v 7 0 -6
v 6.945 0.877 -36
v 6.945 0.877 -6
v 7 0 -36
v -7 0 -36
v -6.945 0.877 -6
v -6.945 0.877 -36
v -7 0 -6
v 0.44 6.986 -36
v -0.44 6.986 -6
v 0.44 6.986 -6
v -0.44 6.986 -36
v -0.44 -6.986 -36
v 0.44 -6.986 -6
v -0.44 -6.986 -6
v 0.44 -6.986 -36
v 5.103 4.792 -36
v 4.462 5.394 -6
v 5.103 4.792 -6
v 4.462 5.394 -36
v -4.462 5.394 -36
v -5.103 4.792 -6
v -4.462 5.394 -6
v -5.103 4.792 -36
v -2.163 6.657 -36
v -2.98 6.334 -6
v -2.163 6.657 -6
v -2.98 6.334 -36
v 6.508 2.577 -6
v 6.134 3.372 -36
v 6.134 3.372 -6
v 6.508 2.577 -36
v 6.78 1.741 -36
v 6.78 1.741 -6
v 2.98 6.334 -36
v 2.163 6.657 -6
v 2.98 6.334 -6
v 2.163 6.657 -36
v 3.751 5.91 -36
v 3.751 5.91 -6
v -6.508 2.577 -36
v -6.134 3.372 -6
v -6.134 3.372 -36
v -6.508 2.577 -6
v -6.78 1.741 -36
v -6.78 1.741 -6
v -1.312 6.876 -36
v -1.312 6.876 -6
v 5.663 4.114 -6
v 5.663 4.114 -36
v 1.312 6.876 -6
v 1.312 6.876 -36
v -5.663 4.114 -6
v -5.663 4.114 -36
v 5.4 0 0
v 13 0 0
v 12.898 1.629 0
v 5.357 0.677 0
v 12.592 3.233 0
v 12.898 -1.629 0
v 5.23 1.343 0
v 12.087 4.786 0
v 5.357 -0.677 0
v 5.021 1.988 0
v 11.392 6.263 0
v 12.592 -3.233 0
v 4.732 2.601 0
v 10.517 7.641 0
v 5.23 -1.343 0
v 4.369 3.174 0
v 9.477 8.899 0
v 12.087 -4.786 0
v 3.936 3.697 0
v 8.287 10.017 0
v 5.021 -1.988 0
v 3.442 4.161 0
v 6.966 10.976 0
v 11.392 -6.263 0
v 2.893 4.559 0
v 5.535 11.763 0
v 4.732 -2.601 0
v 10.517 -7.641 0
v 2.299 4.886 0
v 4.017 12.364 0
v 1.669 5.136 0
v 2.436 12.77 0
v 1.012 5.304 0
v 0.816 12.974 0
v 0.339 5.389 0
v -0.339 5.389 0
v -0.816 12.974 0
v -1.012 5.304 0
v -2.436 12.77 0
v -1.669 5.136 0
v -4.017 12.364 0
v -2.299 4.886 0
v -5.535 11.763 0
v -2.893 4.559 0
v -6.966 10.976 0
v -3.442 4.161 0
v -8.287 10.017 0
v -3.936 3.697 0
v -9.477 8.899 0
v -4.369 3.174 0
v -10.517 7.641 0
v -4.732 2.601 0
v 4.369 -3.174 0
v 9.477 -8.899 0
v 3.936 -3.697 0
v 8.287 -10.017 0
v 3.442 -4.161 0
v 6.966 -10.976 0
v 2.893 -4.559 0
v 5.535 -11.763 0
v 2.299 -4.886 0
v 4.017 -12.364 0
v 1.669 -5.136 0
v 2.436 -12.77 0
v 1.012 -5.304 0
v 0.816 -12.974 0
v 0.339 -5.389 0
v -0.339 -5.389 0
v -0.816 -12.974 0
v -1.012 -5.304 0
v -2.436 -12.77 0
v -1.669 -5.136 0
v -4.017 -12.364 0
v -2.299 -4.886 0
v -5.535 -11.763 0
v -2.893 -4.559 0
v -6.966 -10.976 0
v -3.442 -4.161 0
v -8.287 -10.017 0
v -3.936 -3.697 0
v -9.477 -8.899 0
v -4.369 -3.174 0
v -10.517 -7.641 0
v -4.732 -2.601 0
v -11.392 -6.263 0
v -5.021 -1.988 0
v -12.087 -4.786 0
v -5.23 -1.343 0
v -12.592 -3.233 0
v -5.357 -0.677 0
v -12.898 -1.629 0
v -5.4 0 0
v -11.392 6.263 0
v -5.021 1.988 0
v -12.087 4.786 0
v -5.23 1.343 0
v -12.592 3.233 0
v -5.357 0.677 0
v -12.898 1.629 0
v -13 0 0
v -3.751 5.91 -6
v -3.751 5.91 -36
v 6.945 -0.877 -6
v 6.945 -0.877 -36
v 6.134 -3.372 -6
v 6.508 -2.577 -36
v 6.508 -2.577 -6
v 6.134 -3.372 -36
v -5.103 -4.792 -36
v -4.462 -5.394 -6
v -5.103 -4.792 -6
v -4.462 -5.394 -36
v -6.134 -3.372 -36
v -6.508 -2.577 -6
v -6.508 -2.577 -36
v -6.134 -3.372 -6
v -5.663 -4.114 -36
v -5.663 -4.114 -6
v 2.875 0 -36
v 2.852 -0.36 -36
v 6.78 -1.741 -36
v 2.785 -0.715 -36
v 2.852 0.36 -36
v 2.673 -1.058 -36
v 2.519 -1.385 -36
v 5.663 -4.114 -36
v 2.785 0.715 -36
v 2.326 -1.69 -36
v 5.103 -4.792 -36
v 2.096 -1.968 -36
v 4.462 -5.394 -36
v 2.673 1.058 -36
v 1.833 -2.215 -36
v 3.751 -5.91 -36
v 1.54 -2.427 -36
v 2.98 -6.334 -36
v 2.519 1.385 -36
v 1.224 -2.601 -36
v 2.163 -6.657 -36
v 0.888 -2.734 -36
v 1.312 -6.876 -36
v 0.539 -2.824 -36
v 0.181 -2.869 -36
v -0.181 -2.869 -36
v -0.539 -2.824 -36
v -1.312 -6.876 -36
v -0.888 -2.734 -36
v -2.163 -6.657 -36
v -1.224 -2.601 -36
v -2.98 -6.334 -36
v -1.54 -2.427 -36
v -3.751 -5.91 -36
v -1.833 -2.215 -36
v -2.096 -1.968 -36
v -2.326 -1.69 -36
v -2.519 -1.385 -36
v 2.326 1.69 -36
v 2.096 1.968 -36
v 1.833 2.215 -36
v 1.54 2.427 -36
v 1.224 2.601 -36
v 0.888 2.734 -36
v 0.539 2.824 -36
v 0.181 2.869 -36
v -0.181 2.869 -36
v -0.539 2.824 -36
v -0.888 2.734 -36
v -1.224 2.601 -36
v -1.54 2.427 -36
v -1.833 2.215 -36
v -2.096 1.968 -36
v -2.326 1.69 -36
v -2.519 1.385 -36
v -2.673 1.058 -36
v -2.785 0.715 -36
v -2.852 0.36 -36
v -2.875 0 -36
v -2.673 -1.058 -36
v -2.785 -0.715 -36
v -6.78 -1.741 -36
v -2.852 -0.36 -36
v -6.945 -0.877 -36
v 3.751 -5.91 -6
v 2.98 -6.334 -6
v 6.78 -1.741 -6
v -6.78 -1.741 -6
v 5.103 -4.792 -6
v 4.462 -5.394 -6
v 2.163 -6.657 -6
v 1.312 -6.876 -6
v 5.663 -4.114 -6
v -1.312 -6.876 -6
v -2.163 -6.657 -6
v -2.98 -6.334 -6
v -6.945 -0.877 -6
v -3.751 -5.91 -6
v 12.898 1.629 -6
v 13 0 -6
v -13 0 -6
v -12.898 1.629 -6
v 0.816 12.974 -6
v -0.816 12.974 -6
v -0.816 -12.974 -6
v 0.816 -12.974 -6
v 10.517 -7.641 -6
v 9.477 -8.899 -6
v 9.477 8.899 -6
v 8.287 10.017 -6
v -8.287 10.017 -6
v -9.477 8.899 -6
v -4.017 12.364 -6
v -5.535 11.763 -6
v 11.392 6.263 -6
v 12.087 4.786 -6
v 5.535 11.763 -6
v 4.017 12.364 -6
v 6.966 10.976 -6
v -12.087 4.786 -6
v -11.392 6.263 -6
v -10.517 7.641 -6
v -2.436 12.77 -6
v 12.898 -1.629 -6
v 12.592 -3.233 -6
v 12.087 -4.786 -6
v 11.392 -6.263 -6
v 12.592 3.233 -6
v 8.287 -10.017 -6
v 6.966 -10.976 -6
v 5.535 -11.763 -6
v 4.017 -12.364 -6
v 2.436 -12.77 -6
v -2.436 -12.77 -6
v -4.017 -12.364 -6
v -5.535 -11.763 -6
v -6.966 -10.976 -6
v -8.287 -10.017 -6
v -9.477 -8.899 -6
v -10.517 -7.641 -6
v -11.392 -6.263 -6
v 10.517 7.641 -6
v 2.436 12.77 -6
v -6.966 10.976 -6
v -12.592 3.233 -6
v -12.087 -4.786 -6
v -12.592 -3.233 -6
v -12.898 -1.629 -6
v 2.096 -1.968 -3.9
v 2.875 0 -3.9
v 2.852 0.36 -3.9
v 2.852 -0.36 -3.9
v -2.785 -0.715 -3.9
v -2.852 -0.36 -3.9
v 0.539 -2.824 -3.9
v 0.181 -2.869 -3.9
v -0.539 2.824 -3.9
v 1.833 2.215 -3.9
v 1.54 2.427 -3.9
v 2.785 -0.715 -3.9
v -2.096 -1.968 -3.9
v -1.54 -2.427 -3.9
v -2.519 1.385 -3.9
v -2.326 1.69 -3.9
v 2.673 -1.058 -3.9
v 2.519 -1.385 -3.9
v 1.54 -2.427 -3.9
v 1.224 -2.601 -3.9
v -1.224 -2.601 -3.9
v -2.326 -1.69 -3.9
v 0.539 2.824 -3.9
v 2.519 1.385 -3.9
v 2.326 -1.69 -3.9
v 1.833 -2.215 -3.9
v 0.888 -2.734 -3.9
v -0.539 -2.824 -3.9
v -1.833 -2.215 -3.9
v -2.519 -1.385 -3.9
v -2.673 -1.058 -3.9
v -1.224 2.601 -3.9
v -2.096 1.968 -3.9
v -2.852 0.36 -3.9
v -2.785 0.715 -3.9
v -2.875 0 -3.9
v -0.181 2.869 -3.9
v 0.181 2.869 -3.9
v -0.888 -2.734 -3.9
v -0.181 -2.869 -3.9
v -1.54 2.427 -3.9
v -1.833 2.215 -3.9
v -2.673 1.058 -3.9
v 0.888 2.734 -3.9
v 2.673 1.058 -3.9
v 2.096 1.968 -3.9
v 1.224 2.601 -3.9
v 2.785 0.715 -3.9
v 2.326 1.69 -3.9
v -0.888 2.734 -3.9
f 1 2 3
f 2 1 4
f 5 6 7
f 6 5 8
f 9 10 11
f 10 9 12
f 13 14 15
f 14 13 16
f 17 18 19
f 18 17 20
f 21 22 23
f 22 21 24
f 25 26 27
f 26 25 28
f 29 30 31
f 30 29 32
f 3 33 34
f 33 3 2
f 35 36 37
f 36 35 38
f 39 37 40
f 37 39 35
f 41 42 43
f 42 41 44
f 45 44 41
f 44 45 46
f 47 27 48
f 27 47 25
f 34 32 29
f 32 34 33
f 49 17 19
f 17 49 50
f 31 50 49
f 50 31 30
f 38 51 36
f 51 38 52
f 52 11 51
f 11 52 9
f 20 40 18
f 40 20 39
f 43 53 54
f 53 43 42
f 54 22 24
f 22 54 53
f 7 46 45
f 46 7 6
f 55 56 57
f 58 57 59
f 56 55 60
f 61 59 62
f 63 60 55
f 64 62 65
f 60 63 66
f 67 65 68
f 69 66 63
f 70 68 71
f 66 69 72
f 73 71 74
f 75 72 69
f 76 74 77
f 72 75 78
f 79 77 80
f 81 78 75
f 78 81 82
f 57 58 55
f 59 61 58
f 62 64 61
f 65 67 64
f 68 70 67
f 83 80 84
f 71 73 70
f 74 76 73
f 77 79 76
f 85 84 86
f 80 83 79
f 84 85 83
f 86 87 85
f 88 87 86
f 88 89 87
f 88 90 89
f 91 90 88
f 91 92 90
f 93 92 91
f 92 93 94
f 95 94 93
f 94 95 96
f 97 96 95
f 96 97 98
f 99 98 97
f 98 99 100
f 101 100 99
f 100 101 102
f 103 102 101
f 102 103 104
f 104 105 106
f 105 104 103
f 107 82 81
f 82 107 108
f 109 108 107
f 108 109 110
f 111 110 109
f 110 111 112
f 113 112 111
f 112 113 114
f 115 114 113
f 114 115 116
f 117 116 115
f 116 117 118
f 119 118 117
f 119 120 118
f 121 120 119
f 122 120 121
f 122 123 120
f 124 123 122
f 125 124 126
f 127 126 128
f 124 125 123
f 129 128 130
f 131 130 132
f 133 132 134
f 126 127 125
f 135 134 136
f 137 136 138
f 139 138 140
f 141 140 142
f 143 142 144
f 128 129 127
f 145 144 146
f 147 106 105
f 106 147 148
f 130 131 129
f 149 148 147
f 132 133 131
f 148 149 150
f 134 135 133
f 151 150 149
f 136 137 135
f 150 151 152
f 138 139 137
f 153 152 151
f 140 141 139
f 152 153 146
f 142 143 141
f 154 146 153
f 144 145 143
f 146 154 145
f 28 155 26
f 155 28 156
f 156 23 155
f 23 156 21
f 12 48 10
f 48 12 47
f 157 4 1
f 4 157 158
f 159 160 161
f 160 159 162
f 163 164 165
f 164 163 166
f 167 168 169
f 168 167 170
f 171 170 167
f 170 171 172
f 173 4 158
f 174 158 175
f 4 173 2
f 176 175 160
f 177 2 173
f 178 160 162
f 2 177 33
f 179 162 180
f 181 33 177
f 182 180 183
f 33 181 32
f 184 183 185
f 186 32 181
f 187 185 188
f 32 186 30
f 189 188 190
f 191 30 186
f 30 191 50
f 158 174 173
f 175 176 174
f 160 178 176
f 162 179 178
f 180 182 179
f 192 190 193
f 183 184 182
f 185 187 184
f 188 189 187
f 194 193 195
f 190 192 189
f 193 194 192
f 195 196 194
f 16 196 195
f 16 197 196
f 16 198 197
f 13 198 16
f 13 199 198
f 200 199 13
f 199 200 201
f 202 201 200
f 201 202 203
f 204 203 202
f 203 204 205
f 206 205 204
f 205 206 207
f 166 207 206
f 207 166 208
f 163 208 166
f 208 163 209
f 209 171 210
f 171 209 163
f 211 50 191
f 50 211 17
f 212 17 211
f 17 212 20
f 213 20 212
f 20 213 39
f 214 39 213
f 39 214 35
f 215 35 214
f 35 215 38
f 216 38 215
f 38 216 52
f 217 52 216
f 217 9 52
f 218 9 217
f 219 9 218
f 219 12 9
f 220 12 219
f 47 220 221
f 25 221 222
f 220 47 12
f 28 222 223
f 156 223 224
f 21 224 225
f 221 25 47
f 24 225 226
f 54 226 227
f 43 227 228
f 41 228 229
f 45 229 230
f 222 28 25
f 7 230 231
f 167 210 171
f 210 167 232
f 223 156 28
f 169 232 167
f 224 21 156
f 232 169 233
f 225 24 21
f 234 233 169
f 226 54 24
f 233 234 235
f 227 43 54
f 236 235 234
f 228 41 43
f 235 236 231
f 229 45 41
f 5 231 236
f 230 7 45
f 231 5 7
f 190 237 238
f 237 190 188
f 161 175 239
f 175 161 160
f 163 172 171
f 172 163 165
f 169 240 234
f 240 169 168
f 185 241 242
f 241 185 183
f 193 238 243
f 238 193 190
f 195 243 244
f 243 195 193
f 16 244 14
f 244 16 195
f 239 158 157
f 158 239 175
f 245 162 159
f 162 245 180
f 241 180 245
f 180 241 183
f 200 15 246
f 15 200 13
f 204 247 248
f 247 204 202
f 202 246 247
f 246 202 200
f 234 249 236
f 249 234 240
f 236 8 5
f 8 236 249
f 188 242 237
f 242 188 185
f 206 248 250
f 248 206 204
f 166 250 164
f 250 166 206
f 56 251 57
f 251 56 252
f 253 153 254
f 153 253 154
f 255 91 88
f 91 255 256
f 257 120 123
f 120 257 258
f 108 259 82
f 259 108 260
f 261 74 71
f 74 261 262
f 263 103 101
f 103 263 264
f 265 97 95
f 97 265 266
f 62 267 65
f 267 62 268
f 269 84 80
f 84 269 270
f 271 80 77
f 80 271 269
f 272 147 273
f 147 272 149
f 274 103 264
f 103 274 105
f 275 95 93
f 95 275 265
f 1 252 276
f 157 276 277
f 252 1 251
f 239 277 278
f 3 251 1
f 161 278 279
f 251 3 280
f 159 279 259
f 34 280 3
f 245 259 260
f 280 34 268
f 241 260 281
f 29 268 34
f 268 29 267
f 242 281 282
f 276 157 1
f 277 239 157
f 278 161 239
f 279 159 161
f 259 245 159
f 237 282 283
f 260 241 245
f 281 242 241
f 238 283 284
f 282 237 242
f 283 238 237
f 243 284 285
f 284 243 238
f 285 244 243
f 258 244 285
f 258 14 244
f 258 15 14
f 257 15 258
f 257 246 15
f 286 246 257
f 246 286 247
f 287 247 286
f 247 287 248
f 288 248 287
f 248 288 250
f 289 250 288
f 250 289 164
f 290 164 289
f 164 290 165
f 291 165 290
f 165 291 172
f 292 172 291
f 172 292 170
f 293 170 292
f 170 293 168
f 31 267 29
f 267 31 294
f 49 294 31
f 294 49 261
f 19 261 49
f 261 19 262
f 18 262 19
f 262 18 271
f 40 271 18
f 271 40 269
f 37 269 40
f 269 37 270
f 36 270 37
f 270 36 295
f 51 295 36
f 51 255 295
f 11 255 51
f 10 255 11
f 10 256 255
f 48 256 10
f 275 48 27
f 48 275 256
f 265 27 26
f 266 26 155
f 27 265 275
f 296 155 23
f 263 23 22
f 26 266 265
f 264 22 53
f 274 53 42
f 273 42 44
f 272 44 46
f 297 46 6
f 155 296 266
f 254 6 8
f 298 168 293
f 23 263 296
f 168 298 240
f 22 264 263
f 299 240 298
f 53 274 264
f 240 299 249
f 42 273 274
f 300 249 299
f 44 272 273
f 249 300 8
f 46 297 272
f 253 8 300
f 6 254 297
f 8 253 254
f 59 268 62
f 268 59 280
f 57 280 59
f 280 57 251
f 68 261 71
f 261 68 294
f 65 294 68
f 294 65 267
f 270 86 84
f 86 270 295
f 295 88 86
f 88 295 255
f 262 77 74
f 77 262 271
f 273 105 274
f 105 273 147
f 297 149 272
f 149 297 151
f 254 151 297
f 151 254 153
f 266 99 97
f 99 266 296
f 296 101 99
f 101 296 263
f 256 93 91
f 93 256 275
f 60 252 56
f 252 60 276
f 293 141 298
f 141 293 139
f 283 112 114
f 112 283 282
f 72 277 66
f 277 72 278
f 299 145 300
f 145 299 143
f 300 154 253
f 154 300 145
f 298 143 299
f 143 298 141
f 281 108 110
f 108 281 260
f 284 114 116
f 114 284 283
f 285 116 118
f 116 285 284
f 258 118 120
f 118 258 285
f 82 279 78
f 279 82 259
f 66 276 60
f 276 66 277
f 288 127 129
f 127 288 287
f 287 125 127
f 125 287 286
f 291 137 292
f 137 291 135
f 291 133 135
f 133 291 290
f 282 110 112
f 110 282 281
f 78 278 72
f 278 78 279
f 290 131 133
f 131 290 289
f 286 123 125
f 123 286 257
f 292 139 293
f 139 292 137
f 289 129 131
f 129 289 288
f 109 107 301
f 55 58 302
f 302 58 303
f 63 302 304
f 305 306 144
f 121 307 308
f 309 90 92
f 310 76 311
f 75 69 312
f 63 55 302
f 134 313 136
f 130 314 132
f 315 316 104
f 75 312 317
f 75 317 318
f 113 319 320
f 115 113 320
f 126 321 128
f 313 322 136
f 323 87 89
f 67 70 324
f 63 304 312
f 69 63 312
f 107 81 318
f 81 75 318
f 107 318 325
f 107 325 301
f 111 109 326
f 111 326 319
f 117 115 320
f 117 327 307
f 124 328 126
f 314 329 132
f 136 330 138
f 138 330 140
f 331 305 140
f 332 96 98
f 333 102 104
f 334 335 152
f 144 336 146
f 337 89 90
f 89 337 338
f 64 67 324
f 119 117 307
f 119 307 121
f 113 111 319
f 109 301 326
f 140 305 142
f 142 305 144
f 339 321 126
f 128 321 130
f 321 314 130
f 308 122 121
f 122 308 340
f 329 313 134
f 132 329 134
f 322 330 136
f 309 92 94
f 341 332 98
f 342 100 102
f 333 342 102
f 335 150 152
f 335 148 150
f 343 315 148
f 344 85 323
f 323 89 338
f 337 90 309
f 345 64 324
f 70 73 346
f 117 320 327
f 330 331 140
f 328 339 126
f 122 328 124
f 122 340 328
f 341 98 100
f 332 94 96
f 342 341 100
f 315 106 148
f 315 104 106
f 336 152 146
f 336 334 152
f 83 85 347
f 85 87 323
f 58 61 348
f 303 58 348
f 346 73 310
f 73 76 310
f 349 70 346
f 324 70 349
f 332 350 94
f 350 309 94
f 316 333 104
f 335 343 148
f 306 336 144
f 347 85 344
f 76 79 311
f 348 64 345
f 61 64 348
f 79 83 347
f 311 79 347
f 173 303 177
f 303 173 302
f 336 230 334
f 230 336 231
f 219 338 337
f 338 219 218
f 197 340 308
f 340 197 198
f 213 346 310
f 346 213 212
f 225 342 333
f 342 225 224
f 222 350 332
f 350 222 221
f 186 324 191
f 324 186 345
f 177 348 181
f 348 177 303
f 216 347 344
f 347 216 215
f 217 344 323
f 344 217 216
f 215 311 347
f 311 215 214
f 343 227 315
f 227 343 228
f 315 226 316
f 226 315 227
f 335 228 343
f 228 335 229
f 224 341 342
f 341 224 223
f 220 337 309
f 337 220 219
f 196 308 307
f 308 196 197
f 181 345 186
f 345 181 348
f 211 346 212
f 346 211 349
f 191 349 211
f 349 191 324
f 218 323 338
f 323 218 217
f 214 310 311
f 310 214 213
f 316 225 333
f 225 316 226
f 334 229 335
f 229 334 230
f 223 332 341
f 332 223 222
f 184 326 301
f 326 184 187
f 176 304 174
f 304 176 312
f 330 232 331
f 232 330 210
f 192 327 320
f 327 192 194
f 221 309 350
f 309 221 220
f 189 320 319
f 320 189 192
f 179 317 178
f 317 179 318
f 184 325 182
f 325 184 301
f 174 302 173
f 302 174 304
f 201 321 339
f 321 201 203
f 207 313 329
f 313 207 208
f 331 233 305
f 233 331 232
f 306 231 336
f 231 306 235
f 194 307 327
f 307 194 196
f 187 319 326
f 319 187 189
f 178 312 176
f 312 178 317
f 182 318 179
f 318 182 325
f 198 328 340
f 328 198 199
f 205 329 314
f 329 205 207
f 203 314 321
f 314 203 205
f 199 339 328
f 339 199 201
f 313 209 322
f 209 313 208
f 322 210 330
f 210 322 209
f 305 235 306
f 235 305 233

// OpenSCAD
$fn = 50;


difference() {
	union() {
		translate(v = [0, 0, -36.0000000000]) {
			cylinder(h = 36, r = 7.0000000000);
		}
		translate(v = [0, 0, -6.0000000000]) {
			cylinder(h = 6, r = 13.0000000000);
		}
	}
	union() {
		translate(v = [0, 0, 0]) {
			rotate(a = [0, 0, 0]) {
				difference() {
					union() {
						#translate(v = [0, 0, -36.0000000000]) {
							cylinder(h = 36, r = 2.6000000000);
						}
						#translate(v = [0, 0, -3.9000000000]) {
							cylinder(h = 3.9000000000, r1 = 2.8750000000, r2 = 5.4000000000);
						}
						#translate(v = [0, 0, -36.0000000000]) {
							cylinder(h = 36, r = 2.8750000000);
						}
						#translate(v = [0, 0, -36.0000000000]) {
							cylinder(h = 36, r = 2.6000000000);
						}
					}
					union();
				}
			}
		}
	}
}
